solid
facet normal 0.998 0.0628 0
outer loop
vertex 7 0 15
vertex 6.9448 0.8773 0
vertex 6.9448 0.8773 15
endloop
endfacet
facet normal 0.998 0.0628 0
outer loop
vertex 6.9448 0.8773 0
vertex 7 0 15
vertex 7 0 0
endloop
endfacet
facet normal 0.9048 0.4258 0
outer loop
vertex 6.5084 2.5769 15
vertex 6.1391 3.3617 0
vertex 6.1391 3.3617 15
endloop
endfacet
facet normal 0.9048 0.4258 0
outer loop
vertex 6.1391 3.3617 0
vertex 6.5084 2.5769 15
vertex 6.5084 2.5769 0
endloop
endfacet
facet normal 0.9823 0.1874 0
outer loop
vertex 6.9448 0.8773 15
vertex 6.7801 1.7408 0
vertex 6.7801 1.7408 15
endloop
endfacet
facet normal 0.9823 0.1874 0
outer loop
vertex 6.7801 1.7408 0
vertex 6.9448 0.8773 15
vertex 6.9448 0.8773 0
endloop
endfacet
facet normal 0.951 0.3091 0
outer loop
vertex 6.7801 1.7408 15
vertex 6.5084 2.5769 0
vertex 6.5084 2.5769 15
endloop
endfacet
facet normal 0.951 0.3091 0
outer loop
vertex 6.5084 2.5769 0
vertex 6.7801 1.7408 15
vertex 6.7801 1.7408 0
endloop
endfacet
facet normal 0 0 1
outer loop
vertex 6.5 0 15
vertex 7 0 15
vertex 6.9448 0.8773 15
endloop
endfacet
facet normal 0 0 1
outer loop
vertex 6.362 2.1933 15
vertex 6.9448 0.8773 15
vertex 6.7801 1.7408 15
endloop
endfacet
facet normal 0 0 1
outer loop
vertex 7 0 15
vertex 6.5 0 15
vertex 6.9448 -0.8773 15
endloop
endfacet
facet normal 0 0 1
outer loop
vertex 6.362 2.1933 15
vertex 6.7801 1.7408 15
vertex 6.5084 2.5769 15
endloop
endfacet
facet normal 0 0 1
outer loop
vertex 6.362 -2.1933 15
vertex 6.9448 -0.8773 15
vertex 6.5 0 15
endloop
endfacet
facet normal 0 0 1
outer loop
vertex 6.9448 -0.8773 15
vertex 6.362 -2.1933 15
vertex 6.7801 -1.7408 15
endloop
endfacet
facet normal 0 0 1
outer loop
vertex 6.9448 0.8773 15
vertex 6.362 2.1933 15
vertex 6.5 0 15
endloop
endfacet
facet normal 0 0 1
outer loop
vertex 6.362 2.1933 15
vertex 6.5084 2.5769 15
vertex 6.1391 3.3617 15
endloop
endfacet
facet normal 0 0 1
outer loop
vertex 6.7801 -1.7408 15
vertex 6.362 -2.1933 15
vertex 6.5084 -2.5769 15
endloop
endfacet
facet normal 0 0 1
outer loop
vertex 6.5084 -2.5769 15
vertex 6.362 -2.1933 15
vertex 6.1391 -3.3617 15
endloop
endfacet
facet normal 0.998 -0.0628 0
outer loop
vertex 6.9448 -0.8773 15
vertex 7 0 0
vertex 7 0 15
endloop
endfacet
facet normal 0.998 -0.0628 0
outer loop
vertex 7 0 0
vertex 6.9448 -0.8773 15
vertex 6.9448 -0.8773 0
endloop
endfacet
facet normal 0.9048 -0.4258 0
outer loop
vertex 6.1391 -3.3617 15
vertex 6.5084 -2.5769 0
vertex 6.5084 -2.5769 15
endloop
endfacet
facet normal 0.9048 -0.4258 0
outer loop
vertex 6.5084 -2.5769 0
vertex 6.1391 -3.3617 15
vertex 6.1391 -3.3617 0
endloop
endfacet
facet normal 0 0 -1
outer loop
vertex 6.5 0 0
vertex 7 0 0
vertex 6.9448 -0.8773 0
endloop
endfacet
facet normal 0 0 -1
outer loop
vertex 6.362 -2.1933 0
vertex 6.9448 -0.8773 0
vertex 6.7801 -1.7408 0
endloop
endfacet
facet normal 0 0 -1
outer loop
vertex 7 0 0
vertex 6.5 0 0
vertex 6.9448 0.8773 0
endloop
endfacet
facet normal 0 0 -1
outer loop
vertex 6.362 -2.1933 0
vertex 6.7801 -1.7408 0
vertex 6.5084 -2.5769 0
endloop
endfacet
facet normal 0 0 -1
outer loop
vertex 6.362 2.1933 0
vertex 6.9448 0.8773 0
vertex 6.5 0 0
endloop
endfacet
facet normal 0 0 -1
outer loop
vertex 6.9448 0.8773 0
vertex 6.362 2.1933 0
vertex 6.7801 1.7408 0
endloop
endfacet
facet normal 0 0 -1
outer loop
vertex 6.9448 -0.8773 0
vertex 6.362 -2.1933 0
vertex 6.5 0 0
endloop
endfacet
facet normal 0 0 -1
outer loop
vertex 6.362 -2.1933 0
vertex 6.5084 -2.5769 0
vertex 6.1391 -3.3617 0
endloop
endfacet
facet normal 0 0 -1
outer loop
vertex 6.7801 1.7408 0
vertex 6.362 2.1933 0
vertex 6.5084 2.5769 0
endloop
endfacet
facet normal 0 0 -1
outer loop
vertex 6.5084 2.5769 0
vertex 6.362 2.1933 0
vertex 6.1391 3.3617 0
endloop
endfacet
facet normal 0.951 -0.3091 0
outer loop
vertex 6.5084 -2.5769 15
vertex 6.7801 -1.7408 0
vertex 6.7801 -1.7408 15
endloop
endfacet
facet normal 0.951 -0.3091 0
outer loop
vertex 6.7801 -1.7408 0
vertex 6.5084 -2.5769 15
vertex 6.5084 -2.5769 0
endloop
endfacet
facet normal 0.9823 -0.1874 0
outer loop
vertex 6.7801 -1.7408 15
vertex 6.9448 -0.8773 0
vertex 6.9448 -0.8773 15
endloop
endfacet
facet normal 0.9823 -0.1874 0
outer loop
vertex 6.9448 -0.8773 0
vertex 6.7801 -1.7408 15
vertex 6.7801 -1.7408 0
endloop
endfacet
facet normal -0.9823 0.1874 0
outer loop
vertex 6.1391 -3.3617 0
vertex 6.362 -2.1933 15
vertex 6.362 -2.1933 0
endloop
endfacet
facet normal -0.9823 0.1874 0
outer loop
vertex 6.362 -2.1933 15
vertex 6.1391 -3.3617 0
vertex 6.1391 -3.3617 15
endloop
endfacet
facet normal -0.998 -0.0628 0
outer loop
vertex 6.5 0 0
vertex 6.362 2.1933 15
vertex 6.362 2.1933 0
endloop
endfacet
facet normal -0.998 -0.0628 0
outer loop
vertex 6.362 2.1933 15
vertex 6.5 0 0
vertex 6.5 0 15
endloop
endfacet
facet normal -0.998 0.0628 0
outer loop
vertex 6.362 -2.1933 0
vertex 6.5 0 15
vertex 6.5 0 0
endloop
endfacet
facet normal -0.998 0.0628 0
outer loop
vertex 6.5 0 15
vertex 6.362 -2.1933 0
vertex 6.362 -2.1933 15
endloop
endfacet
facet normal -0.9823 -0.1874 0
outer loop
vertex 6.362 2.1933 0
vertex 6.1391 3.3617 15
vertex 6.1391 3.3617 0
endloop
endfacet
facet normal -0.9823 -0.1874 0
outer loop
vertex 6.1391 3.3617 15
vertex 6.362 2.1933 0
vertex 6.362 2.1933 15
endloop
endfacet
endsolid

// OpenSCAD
$fn = 50;


difference() {
	union() {
		cylinder(h = 15, r = 7.0000000000);
		translate(v = [-14.0000000000, 0, 0]) {
			cylinder(h = 15, r = 7.0000000000);
		}
	}
	union() {
		cylinder(h = 15, r = 3.2500000000);
		cylinder(h = 15, r = 1.8000000000);
		cylinder(h = 15, r = 1.8000000000);
		cylinder(h = 15, r = 1.8000000000);
		translate(v = [-18.5000000000, 0, 0]) {
			hull() {
				translate(v = [-3.7500000000, 0.0000000000, 0]) {
					cylinder(h = 15, r = 7.5000000000);
				}
				translate(v = [3.7500000000, 0.0000000000, 0]) {
					cylinder(h = 15, r = 7.5000000000);
				}
				translate(v = [-3.7500000000, -0.0000000000, 0]) {
					cylinder(h = 15, r = 7.5000000000);
				}
				translate(v = [3.7500000000, -0.0000000000, 0]) {
					cylinder(h = 15, r = 7.5000000000);
				}
			}
		}
		translate(v = [-11.0000000000, 0, 0.0000000000]) {
			cylinder(h = 15, r = 17.5000000000);
		}
	}
}
